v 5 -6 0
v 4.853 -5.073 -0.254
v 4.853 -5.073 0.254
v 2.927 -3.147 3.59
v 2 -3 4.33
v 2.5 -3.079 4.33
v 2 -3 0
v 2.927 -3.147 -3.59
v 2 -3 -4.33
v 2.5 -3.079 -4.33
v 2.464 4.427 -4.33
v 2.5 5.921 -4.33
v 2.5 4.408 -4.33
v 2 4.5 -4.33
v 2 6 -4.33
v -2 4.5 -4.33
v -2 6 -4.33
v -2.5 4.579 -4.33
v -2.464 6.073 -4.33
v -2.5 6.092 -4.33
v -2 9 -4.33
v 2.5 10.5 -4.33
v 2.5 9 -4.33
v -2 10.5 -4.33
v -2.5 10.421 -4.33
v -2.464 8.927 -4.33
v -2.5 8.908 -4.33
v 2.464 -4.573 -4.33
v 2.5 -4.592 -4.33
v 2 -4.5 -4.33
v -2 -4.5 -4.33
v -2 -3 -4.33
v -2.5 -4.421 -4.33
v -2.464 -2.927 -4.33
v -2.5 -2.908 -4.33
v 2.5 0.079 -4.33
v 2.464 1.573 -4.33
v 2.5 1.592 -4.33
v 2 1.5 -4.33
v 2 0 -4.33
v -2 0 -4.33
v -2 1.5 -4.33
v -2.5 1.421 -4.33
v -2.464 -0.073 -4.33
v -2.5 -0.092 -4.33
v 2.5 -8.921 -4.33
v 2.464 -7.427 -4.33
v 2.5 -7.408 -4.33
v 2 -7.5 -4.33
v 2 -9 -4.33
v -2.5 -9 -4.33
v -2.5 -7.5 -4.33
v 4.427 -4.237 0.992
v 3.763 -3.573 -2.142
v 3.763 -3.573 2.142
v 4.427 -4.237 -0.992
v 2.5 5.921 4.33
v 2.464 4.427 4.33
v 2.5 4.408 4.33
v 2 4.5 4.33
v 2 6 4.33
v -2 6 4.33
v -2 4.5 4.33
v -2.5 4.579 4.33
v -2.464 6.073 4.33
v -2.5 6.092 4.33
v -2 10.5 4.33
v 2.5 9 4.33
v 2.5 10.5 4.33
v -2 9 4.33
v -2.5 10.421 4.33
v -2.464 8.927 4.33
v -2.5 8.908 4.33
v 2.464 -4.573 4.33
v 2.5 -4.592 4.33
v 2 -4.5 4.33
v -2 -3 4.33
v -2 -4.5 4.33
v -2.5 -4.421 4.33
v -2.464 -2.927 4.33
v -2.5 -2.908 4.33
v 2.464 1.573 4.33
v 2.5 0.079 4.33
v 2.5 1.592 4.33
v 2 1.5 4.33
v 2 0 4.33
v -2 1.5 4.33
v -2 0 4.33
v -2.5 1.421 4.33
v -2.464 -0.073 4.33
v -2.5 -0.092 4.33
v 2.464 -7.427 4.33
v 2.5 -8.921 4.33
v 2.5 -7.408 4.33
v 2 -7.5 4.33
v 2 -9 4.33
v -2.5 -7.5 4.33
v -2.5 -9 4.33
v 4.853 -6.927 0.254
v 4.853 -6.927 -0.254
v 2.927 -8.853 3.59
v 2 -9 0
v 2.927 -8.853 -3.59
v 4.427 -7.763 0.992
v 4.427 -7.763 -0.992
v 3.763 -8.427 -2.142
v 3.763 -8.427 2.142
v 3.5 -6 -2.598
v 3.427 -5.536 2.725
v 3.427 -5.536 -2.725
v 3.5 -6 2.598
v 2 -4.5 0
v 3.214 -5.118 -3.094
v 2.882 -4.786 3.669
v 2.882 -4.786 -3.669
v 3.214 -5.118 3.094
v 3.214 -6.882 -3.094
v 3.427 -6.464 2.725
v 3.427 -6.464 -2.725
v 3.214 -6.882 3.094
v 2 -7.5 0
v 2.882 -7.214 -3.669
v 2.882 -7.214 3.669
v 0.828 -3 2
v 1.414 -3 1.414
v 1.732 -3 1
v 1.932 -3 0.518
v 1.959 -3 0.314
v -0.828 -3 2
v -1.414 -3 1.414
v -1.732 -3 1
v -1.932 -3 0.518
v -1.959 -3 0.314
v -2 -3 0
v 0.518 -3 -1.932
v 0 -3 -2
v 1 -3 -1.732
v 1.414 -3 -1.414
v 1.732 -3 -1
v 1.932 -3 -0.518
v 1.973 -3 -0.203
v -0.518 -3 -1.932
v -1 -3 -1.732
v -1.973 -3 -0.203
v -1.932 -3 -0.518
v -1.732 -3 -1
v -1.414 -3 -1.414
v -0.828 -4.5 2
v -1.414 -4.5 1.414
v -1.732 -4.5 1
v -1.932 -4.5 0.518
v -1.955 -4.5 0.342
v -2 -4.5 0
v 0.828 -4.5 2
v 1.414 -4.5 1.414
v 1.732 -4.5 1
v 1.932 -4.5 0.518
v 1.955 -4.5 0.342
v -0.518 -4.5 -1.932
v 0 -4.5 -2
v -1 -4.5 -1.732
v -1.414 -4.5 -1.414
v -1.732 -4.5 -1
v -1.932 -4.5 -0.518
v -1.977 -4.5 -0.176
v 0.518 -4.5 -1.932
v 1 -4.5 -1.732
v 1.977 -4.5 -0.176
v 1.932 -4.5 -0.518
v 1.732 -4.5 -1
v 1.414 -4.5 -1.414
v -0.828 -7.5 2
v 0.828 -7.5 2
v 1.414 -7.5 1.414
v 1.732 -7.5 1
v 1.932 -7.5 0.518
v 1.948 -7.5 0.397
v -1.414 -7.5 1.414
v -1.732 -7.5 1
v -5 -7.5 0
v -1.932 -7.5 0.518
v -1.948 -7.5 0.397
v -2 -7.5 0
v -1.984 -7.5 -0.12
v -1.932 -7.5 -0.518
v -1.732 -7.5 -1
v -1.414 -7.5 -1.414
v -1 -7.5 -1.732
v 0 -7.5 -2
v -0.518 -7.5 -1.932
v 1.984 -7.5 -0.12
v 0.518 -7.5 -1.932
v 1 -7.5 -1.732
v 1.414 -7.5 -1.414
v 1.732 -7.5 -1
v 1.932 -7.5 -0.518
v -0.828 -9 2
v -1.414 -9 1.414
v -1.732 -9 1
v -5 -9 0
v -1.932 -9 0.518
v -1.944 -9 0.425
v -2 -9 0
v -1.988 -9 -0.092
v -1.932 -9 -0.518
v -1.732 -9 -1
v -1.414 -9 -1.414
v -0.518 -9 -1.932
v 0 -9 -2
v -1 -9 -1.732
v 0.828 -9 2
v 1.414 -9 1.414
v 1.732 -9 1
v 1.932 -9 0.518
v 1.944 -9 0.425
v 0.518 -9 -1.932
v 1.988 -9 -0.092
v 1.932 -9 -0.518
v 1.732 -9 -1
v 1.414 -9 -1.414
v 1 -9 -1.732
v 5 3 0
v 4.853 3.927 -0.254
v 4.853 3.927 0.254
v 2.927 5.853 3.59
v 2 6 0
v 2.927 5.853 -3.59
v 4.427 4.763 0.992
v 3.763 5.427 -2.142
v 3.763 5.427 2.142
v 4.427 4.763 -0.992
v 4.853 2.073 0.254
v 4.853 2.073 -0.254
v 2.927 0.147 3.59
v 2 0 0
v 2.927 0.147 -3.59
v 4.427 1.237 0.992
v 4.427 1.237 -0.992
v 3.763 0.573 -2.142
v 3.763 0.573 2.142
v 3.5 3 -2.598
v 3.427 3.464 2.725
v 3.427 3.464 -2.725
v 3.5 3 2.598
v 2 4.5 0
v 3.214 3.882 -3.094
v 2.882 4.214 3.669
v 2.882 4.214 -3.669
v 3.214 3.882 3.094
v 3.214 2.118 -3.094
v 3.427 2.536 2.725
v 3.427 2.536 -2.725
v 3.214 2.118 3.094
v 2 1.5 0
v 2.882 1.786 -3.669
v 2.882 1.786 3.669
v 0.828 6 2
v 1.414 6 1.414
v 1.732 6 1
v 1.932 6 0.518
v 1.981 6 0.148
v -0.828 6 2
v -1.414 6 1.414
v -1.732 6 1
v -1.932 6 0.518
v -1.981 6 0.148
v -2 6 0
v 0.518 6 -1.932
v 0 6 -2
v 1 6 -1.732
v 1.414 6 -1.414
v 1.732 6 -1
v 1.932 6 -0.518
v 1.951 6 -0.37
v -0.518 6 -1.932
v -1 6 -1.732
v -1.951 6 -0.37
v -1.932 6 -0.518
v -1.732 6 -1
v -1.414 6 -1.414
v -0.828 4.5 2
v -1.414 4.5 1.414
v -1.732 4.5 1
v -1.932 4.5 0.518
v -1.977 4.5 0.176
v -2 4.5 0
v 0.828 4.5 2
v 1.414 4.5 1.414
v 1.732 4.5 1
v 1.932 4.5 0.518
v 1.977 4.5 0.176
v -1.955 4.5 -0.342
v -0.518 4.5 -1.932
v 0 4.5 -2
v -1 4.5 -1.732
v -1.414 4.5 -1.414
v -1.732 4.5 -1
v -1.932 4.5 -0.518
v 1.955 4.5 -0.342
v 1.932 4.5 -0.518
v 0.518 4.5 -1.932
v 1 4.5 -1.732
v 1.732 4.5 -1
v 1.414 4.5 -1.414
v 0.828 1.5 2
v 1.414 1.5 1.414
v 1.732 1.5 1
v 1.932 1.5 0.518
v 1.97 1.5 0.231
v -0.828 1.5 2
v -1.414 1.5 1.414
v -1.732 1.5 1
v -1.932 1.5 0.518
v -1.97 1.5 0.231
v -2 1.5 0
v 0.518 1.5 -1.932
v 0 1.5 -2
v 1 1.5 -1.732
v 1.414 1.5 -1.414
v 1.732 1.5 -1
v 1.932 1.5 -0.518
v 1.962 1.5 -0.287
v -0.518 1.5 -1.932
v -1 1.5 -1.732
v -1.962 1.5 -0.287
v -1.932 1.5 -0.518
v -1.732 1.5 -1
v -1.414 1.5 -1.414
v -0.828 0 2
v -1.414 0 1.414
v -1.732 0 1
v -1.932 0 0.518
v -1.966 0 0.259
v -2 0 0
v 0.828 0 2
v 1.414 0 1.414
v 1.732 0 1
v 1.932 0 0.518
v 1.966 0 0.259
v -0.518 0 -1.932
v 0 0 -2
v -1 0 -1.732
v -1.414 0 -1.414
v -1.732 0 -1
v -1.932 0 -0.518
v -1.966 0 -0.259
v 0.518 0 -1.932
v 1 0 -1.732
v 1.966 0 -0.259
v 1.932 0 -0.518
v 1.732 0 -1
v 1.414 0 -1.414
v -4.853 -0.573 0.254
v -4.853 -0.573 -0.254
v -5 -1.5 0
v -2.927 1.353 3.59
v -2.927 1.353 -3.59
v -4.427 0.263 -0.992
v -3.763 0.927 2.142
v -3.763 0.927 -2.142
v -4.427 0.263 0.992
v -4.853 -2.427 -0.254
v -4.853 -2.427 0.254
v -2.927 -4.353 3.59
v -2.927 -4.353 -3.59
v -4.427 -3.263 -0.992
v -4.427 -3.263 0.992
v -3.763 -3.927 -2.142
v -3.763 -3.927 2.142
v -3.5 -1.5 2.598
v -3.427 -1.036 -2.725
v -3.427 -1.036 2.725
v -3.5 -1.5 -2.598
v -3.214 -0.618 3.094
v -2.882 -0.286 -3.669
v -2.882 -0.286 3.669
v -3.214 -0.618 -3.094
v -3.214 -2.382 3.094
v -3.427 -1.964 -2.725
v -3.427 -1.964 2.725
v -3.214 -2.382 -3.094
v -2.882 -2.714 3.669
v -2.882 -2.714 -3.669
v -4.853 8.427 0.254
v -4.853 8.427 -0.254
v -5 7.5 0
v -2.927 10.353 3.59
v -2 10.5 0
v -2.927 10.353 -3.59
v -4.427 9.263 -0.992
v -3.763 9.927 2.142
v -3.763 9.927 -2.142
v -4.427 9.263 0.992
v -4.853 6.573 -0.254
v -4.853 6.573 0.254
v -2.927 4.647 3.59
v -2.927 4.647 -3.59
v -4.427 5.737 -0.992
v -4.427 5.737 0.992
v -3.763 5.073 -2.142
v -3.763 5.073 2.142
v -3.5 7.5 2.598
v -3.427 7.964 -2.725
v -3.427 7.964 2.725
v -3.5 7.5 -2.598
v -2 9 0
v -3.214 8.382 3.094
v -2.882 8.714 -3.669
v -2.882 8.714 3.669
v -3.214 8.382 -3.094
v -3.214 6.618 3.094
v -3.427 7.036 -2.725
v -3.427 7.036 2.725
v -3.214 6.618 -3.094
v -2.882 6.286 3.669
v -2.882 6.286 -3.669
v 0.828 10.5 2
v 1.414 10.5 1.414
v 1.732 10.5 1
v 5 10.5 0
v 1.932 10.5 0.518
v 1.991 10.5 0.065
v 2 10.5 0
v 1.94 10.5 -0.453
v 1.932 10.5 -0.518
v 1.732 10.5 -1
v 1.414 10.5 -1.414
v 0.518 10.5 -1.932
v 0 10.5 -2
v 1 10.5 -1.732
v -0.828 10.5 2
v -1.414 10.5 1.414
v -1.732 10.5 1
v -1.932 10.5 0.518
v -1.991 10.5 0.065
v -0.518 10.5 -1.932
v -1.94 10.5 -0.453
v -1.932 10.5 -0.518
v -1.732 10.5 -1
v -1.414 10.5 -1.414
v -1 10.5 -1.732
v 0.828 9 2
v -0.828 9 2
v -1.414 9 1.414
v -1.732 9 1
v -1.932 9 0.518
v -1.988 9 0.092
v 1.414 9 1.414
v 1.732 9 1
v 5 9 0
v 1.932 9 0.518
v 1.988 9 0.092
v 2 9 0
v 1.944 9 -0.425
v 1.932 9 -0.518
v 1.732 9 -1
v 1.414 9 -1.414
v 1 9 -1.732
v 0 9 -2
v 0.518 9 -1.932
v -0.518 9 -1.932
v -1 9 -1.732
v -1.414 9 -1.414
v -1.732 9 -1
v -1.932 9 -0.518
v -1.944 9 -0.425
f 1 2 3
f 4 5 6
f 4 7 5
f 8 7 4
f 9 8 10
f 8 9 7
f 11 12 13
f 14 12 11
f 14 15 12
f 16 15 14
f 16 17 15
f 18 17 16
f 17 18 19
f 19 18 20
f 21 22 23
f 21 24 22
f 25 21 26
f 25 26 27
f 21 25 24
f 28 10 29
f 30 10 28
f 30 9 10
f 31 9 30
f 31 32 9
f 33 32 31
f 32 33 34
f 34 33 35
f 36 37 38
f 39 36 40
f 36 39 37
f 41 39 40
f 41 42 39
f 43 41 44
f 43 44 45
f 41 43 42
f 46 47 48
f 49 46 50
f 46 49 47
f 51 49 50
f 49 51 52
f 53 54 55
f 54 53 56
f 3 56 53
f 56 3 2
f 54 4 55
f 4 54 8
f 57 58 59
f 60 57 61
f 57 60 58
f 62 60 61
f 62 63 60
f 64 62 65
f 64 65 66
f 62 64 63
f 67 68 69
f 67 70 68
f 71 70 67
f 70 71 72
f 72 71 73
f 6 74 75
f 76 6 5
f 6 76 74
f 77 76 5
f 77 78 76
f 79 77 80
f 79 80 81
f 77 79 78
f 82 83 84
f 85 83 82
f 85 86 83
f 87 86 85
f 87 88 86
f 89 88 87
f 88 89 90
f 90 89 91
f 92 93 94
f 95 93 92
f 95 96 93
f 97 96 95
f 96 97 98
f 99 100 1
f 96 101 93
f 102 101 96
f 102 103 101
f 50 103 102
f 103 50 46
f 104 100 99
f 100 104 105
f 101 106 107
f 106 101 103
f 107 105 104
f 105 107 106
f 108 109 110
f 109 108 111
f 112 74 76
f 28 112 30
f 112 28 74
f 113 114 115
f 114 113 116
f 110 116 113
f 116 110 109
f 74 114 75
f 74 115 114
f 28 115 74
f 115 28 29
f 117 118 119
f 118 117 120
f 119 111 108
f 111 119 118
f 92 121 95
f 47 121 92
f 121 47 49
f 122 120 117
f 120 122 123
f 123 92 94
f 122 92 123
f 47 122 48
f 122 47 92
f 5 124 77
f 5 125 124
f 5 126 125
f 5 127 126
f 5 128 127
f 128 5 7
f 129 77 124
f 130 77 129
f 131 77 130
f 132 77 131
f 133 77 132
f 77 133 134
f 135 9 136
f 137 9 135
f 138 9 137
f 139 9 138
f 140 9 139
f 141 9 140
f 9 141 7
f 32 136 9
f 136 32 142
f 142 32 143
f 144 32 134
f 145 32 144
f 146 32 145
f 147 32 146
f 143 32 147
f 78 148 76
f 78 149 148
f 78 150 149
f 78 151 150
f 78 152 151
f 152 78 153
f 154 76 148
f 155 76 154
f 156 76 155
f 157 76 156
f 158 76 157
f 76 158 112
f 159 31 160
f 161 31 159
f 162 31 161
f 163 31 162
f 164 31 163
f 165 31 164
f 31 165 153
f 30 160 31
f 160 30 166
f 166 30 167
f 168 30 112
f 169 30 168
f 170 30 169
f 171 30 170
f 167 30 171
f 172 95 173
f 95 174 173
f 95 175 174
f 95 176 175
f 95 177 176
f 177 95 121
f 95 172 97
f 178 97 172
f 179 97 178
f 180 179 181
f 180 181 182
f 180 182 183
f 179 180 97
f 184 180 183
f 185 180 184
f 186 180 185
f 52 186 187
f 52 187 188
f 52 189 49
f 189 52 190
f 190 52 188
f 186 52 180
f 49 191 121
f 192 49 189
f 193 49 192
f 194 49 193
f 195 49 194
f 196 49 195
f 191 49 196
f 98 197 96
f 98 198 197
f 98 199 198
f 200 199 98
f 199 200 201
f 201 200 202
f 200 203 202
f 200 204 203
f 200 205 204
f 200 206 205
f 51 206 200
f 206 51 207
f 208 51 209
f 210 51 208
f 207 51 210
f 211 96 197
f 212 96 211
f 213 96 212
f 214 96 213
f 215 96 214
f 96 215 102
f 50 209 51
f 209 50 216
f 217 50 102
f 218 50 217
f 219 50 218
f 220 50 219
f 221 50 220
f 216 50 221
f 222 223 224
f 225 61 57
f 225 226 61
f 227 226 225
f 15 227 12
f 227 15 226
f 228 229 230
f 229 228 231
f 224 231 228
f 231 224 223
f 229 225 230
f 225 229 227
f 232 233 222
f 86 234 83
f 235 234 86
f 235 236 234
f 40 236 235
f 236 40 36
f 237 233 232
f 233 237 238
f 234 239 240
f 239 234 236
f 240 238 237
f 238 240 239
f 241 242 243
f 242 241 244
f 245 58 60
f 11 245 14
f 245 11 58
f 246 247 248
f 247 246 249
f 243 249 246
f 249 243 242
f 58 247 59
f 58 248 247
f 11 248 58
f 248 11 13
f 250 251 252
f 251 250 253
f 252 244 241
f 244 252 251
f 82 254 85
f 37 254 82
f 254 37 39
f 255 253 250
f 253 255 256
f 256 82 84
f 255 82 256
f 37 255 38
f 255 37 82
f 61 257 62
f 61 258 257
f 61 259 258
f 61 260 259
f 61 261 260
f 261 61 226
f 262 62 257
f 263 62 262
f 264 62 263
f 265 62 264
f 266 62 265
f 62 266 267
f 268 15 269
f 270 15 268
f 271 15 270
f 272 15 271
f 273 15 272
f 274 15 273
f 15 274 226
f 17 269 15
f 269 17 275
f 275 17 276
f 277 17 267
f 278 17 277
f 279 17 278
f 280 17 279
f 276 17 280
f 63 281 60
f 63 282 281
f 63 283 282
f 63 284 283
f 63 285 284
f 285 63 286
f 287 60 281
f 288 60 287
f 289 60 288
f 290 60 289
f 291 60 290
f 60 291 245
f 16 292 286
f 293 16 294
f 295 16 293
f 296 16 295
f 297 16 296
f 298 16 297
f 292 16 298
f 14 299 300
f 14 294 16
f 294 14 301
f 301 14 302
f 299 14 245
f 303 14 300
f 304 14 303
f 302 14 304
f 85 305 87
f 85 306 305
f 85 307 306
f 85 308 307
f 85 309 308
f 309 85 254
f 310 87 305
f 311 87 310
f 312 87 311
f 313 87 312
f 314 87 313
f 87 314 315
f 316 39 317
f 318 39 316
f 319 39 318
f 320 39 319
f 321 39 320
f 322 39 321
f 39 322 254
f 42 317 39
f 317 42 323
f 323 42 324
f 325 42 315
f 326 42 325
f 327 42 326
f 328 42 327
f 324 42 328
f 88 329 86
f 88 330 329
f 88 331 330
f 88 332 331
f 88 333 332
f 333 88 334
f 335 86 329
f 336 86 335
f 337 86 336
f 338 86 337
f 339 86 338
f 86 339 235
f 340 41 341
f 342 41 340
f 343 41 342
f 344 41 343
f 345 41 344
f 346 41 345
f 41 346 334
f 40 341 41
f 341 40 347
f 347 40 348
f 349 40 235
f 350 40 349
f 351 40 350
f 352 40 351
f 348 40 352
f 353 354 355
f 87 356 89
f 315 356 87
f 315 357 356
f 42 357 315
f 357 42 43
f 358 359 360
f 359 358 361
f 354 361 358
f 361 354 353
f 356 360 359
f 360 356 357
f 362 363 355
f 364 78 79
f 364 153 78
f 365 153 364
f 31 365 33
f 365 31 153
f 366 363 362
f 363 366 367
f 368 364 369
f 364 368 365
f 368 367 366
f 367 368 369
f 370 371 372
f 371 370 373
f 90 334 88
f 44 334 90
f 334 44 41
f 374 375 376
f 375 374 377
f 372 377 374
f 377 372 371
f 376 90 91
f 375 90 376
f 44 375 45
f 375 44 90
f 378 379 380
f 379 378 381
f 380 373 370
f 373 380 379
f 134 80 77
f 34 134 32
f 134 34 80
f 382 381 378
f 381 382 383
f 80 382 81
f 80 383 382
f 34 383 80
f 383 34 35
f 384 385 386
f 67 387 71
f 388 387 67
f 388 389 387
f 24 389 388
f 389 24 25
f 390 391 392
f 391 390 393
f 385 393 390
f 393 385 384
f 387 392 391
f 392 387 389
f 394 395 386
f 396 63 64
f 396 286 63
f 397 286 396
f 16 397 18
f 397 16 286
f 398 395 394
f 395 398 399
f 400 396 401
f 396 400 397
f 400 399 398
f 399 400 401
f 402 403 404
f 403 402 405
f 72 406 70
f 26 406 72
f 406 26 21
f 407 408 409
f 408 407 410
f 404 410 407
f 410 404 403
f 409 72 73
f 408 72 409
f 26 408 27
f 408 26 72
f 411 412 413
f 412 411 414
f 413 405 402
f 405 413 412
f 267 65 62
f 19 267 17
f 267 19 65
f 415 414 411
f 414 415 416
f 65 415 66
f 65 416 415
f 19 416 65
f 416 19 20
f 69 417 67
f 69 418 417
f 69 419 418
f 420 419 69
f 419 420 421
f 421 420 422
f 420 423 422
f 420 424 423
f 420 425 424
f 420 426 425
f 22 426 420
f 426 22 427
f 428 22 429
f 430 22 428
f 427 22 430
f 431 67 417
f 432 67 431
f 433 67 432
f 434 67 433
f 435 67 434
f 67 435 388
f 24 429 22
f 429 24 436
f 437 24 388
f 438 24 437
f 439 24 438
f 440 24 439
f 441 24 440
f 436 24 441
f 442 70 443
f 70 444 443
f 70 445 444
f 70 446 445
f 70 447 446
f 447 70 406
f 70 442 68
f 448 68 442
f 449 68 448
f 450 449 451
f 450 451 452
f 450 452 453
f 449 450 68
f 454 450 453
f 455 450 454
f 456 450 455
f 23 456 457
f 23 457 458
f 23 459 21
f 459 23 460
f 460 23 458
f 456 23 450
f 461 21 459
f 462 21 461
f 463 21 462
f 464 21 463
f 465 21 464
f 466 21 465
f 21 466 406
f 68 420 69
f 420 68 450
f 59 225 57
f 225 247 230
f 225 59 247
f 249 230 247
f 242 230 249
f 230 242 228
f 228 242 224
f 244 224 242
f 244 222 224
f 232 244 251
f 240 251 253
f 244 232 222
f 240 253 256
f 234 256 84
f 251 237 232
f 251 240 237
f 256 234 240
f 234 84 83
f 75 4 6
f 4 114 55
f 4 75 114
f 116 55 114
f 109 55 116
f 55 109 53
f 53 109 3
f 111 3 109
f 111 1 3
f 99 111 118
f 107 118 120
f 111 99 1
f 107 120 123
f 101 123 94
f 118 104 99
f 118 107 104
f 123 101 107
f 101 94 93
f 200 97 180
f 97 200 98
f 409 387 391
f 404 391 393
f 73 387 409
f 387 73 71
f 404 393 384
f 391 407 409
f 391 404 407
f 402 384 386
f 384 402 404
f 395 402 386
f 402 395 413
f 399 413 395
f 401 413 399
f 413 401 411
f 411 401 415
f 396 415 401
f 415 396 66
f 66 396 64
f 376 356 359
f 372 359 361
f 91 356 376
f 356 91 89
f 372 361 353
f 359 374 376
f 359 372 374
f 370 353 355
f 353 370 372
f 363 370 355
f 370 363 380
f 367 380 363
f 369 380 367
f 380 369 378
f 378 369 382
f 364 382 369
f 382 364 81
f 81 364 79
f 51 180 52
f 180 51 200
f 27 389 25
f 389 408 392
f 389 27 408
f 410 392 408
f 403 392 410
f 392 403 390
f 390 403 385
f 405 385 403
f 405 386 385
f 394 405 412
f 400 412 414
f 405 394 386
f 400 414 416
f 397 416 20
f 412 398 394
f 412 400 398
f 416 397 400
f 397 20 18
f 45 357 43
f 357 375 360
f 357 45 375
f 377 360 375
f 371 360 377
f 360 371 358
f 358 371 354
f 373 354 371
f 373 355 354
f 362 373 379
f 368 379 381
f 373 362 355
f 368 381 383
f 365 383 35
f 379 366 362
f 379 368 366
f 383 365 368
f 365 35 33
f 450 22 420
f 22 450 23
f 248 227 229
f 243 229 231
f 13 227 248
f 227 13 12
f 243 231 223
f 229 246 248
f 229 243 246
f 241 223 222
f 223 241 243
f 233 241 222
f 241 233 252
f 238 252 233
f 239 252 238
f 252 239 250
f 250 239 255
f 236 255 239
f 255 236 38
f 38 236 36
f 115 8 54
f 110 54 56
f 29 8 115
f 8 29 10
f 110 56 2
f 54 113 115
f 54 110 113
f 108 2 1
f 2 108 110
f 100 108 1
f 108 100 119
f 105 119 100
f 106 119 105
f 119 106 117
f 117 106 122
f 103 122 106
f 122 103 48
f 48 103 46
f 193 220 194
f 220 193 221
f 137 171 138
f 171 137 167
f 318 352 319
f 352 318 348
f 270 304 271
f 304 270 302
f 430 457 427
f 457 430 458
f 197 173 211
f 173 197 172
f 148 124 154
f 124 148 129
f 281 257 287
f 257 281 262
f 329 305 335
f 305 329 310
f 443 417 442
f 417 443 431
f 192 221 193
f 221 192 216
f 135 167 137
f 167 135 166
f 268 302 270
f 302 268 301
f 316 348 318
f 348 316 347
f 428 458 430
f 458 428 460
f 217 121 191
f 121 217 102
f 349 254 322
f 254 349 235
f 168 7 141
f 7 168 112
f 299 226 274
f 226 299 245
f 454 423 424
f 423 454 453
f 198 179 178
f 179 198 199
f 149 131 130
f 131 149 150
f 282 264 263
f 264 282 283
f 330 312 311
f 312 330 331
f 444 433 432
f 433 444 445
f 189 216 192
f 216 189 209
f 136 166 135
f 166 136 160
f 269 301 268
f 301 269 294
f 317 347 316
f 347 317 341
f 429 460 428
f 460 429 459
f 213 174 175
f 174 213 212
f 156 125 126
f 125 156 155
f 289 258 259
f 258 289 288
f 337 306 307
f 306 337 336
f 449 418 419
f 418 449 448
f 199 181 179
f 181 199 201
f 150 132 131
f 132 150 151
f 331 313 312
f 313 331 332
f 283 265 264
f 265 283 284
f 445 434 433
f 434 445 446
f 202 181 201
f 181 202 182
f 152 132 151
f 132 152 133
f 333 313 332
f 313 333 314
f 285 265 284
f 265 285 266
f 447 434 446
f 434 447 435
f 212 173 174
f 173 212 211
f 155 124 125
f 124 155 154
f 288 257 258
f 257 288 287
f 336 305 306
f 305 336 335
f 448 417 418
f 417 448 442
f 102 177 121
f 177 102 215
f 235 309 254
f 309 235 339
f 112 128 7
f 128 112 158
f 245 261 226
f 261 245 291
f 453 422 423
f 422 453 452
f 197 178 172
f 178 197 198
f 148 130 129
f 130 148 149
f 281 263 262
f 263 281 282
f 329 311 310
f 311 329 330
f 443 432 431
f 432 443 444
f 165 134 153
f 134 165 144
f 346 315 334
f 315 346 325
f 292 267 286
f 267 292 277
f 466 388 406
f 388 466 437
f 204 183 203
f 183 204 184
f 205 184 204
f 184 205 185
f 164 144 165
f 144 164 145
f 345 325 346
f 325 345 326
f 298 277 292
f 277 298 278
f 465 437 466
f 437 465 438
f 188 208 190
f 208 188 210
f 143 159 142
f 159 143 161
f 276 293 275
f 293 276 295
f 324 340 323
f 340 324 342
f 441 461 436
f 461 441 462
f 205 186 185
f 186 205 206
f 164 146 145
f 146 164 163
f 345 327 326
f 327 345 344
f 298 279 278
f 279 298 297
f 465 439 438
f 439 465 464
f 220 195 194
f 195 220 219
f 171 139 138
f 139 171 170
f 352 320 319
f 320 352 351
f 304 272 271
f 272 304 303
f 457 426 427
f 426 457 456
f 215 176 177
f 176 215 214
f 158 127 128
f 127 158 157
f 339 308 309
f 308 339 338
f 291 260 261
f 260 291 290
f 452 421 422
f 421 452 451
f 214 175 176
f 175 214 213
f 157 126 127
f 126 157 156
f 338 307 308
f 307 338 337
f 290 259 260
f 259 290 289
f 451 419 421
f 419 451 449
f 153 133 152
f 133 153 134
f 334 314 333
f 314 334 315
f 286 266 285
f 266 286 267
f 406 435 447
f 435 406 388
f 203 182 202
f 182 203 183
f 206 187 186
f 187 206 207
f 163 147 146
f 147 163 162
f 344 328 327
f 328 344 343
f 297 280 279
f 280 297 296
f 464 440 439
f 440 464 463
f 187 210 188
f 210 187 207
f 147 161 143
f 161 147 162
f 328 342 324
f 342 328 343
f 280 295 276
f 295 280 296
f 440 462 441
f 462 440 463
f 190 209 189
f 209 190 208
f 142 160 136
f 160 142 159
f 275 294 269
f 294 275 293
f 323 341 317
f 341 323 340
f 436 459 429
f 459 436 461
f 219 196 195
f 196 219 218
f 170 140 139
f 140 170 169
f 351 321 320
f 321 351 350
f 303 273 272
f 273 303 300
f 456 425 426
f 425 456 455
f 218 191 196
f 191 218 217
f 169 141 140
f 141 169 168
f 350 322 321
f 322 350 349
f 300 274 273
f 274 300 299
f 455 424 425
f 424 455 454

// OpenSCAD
//---------------------------------------------------------------------------------------------
//-- Printable parameterized spring
//-- (c) Juan Gonzalez-Gomez (Obijuan) juan@iearobotics.com
//-- April-2012
//---------------------------------------------------------------------------------------------
//-- Proof of concept
//---------------------------------------------------------------------------------------------


//-- Spring folds. It is implemented by means of arcs
//-- It consist of two parts: the arc and the arms
//-- r = Inner arc radius
//-- th = thickness
//-- w = width
//-- arc_len = Length of the two arms
module spring_arc(arm_len, r, th, w)
{
  //-- outer radius
  or = r + th; 

  translate([arm_len,or,0])
  union() {

    //-- Arc
    difference() {
      cylinder(r=or, h=w, center=true, $fn=20);

      translate([-or,0,0])
          cube([2*or, 2*or+2, w+2],center=true);

      cylinder(r=r, h=w+10, center=true, $fn=20);

    }

    //-- Arms
    translate([-arm_len/2,th/2+r,0])
      cube([arm_len,th,w],center=true);

    translate([-arm_len/2,-th/2-r,0])
      cube([arm_len,th,w],center=true);
  }
}

//---------------------------------------------------------
//-- This module creates the spring, with a square section
//-- and no drills
//-- Spring parameters:
//--  -fid: Fold inner diameter
//--  -th: thickness 
//--  -folds: Number of folds: starting from 1
//--  -lx,lz: Spring length on x and z axes respectively
//--------------------------------------------------------
module parametric_spring_common(fid=3, th=2, folds=8, lx=20, lz=20)
{

  step = 2*(fid + th);
  arm_len = (lx - fid - 2*th)/2;
  ly = folds*step/2;

  translate([0,-ly/2,0])
  union() {

    //-- Right folds
    for (i=[1:ceil(folds/2)]) {
      translate([0, (i-1)*step,0])
        spring_arc(arm_len=arm_len, r=fid/2, th=th, w=lz);
    }

    //-- left folds
    if (folds>1) {
      for (i=[1:floor(folds/2)]) {
        translate([0, (i-1)*step+step/2,0])
          mirror([1,0,0])
          spring_arc(arm_len=arm_len, r=fid/2, th=th, w=lz);
      }
    }

    translate([-lx/4,th/2,0])
      cube([lx/2,th,lz], center=true);

    if ((folds%2)==0)
      translate([lx/4, th/2+(step/2)*folds,0])
        cube([lx/2,th,lz], center=true);
    else
      translate([-lx/4, th/2+(step/2)*folds,0])
        cube([lx/2,th,lz], center=true);
  }
}

module teardrop(r,h)
{
  $fa=15.0;
  $fs=0.1;

  diameter=2*r;

  translate([0,0,-h/2])
  linear_extrude(height=h, center=false, convexity=10)
  difference() {
    union() {
      circle(r=diameter/2);
      rotate(45) square(size=diameter/2,center=false);
    }
    translate([-diameter/2,diameter/2]) square(size=diameter);
  }
}

module pipe(hexa_diam=12, len=5, offs=0, sides=6)
{
  out_diam = 4*(hexa_diam/2 * cos(360/(2*sides)));


  difference() {
    rotate([90,0,0])
     cylinder(r=out_diam/2, h=len+10,center=true, $fn=sides);

    rotate([90,0,0])
     cylinder(r=hexa_diam/2+offs, h=len+15,center=true, $fn=sides);
  }
}

//---------------------------------------------
//-- Spring MAIN MODULES!
//-- Common parameters:
//--     -fid = folder inner diameter
//--     -th = thickness
//--     -folds = Number of folds in the spring
//--     -drill = Inner drill
//---------------------------------------------


//-------------------------------------
//-- Spring with a squeare section
//-- Specific parameters:
//--    lx, lz : square lenths
//-------------------------------------
module spring_square(fid=3, th=2, folds=8, lx=20, lz=20,drill=8)
{
  step = 2*(fid + th);
  arm_len = (lx - fid - 2*th)/2;
  ly = folds*(fid + th);
  echo(ly);

  difference() {
    parametric_spring_common(fid=fid,th=th, folds=folds, lx=lx, lz=lz);

    rotate([90,0,0])
      teardrop(r=drill/2,h=ly+10);
      //cylinder(r=drill/2, h=ly+10, center=true, $fn=20);
  }
}

//-----------------------------------------------------------------------
//-- Spring with an hexagonal section 
//-- Specific parameters:
//--    hexa_diam: external diameter
//--    offs: Additional distance added to the hexa_diam to 
//--      for changing the shape. When offs=0, it is a regular hexagon
//----------------------------------------------------------------------
module spring_hexagonal(fid=3, th=2, folds=8, hexa_diam=13 ,drill=8,offs=0)
{
   ly = folds*(fid + th);
  lx = hexa_diam;
  lz = 2*(hexa_diam/2 * cos(30));
  step = 2*(fid + th);
  arm_len = (lx - fid - 2*th)/2;
 

  difference() {
    parametric_spring_common(fid=fid,th=th, folds=folds, lx=lx, lz=lz);

    rotate([90,0,0])
      //cylinder(r=drill/2, h=ly+10, center=true, $fn=20);
      teardrop(r=drill/2,h=ly+10);

    pipe(hexa_diam=hexa_diam, len=ly,offs=offs,sides=6);
  }
}


//-----------------------------------------------------------------------
//-- Spring with an octogonal section 
//-- Specific parameters:
//--    hexa_diam: external diameter
//--    offs: Additional distance added to the hexa_diam to 
//--      for changing the shape. When offs=0, it is a regular hexagon
//----------------------------------------------------------------------
module spring_octogonal(fid=3, th=2, folds=8, hexa_diam=13 ,drill=8,offs=0)
{
   ly = folds*(fid + th);
  lx = hexa_diam;
  lz = 2*(hexa_diam/2 * cos(30));
  step = 2*(fid + th);
  arm_len = (lx - fid - 2*th)/2;
  echo(ly);

  difference() {
    parametric_spring_common(fid=fid,th=th, folds=folds, lx=lx, lz=lz);

    rotate([90,0,0])
      //cylinder(r=drill/2, h=ly+10, center=true, $fn=20);
      teardrop(r=drill/2,h=ly+10);

    rotate([0,45/2,0])
    pipe(hexa_diam=hexa_diam, len=ly,offs=offs, sides=8);
  }
}

//-- Example springs!

//translate([-30,0,0])
//spring_square(fid=3, th=2.8, folds=5, lx=22.2, lz=20, drill=14);

//-- This is the one used as a z axis spring on the Prusa Mendel
//translate([0,0,0])
spring_hexagonal(fid=3, th=1.5, folds=4, hexa_diam=10, drill=4, offs=0);

//translate([30,0,0])
//spring_octogonal(fid=4, th=2, folds=6, hexa_diam=22, drill=14);
